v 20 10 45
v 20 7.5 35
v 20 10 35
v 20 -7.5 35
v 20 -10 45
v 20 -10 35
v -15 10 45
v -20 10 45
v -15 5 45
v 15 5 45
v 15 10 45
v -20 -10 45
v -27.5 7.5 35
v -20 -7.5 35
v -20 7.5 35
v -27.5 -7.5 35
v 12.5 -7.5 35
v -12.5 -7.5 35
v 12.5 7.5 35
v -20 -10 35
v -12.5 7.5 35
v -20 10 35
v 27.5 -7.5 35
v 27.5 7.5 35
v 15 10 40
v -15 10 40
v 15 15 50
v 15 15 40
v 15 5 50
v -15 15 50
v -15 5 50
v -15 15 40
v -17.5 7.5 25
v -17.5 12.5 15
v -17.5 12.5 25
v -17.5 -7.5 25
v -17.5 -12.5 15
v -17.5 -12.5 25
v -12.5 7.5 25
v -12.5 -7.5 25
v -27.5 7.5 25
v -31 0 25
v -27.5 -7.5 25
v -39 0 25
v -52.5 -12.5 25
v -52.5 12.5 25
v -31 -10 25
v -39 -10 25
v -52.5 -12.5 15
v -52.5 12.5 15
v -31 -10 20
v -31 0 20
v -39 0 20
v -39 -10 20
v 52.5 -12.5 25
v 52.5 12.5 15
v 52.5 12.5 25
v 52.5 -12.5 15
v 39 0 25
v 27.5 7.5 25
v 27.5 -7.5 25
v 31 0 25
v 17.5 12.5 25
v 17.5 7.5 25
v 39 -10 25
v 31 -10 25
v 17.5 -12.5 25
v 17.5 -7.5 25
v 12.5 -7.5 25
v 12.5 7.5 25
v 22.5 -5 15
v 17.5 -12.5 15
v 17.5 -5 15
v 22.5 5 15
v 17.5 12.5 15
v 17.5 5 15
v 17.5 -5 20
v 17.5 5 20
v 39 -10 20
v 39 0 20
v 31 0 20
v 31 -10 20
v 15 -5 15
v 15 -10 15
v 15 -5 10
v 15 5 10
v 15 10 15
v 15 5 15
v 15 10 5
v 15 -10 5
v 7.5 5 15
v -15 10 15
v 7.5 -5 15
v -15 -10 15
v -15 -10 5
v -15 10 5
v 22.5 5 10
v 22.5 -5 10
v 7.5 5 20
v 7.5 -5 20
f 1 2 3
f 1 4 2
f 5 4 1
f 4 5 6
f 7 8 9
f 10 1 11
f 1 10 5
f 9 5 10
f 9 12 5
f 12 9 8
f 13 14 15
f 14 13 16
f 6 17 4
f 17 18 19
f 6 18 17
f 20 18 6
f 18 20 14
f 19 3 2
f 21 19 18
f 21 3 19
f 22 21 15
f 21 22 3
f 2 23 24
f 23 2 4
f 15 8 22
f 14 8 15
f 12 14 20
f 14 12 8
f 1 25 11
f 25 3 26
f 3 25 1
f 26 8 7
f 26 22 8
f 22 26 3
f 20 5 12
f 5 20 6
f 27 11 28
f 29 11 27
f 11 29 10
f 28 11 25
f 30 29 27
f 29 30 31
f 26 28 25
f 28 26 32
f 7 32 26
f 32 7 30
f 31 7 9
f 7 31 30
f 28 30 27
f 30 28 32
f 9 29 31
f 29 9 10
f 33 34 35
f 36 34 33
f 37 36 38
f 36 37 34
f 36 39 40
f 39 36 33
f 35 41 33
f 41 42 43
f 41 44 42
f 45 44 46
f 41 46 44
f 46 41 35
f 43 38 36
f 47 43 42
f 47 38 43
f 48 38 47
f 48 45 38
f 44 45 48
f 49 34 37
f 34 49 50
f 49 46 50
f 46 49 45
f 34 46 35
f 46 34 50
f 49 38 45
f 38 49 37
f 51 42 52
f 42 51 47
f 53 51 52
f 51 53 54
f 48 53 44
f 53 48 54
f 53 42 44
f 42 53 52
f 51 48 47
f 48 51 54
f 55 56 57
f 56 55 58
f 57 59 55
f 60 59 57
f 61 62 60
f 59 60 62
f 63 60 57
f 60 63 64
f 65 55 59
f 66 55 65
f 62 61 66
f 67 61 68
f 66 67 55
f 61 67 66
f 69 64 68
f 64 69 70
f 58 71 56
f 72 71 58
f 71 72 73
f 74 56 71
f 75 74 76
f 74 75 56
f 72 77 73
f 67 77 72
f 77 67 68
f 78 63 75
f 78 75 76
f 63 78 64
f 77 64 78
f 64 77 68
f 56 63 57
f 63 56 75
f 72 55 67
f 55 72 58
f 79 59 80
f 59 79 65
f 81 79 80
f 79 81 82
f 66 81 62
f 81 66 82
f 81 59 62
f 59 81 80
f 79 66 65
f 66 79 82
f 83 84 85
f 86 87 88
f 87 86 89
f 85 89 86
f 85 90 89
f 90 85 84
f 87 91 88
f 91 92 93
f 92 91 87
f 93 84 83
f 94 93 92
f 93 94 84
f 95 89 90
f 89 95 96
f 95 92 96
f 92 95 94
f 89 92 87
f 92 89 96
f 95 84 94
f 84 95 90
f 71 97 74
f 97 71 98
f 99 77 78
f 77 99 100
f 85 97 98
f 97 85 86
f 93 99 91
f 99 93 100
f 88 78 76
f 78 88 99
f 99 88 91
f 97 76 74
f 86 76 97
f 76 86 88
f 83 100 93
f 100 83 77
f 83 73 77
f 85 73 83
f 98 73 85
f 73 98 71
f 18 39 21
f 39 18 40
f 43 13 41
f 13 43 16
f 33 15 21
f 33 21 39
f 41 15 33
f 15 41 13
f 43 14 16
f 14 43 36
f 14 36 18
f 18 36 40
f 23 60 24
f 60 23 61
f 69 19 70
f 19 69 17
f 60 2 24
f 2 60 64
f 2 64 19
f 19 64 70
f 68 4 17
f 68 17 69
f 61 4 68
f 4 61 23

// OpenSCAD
// Define dimensions for each component
module central_block() {
    // Adjusted T-shape with a longer and more pronounced perpendicular protrusion
    union() {
        // Main rectangular prism
        cube([40, 20, 10], center = true);
        // Perpendicular protrusion
        translate([0, 10, 5])
            cube([30, 10, 10], center = true); // Extended length to match original model
    }
}

module side_block() {
    // Adjusted step-like profile with a smaller cutout and larger overall dimensions
    difference() {
        // Main rectangular block
        cube([35, 25, 10], center = true); // Increased dimensions to match original model
        // Smaller rectangular cutout
        translate([0, -5, 5])
            cube([8, 10, 10], center = true); // Reduced cutout size to match original model
    }
}

module connector_block() {
    // Adjusted asymmetrical profile with a larger and more offset protrusion
    union() {
        // Main rectangular block
        cube([30, 20, 10], center = true);
        // Offset protrusion
        translate([15, 0, 5]) // Increased offset to match original model
            cube([15, 10, 10], center = true); // Enlarged protrusion to match original model
    }
}

module spacer_block() {
    // Adjusted uniform rectangular prism with larger dimensions
    cube([15, 15, 10], center = true); // Increased dimensions to match original model
}

// Assemble the model
module assembly() {
    // Layer 1: Central block
    translate([0, 0, 40])
        central_block();

    // Layer 2: Spacer blocks
    translate([-20, 0, 30]) // Adjusted position to match increased dimensions
        spacer_block();
    translate([20, 0, 30]) // Adjusted position to match increased dimensions
        spacer_block();

    // Layer 3: Side blocks
    translate([-35, 0, 20]) // Adjusted position to match increased dimensions
        side_block();
    translate([35, 0, 20]) // Adjusted position to match increased dimensions
        side_block();

    // Layer 4: Connector block
    translate([0, 0, 10])
        connector_block();
}

// Render the assembly
assembly();
